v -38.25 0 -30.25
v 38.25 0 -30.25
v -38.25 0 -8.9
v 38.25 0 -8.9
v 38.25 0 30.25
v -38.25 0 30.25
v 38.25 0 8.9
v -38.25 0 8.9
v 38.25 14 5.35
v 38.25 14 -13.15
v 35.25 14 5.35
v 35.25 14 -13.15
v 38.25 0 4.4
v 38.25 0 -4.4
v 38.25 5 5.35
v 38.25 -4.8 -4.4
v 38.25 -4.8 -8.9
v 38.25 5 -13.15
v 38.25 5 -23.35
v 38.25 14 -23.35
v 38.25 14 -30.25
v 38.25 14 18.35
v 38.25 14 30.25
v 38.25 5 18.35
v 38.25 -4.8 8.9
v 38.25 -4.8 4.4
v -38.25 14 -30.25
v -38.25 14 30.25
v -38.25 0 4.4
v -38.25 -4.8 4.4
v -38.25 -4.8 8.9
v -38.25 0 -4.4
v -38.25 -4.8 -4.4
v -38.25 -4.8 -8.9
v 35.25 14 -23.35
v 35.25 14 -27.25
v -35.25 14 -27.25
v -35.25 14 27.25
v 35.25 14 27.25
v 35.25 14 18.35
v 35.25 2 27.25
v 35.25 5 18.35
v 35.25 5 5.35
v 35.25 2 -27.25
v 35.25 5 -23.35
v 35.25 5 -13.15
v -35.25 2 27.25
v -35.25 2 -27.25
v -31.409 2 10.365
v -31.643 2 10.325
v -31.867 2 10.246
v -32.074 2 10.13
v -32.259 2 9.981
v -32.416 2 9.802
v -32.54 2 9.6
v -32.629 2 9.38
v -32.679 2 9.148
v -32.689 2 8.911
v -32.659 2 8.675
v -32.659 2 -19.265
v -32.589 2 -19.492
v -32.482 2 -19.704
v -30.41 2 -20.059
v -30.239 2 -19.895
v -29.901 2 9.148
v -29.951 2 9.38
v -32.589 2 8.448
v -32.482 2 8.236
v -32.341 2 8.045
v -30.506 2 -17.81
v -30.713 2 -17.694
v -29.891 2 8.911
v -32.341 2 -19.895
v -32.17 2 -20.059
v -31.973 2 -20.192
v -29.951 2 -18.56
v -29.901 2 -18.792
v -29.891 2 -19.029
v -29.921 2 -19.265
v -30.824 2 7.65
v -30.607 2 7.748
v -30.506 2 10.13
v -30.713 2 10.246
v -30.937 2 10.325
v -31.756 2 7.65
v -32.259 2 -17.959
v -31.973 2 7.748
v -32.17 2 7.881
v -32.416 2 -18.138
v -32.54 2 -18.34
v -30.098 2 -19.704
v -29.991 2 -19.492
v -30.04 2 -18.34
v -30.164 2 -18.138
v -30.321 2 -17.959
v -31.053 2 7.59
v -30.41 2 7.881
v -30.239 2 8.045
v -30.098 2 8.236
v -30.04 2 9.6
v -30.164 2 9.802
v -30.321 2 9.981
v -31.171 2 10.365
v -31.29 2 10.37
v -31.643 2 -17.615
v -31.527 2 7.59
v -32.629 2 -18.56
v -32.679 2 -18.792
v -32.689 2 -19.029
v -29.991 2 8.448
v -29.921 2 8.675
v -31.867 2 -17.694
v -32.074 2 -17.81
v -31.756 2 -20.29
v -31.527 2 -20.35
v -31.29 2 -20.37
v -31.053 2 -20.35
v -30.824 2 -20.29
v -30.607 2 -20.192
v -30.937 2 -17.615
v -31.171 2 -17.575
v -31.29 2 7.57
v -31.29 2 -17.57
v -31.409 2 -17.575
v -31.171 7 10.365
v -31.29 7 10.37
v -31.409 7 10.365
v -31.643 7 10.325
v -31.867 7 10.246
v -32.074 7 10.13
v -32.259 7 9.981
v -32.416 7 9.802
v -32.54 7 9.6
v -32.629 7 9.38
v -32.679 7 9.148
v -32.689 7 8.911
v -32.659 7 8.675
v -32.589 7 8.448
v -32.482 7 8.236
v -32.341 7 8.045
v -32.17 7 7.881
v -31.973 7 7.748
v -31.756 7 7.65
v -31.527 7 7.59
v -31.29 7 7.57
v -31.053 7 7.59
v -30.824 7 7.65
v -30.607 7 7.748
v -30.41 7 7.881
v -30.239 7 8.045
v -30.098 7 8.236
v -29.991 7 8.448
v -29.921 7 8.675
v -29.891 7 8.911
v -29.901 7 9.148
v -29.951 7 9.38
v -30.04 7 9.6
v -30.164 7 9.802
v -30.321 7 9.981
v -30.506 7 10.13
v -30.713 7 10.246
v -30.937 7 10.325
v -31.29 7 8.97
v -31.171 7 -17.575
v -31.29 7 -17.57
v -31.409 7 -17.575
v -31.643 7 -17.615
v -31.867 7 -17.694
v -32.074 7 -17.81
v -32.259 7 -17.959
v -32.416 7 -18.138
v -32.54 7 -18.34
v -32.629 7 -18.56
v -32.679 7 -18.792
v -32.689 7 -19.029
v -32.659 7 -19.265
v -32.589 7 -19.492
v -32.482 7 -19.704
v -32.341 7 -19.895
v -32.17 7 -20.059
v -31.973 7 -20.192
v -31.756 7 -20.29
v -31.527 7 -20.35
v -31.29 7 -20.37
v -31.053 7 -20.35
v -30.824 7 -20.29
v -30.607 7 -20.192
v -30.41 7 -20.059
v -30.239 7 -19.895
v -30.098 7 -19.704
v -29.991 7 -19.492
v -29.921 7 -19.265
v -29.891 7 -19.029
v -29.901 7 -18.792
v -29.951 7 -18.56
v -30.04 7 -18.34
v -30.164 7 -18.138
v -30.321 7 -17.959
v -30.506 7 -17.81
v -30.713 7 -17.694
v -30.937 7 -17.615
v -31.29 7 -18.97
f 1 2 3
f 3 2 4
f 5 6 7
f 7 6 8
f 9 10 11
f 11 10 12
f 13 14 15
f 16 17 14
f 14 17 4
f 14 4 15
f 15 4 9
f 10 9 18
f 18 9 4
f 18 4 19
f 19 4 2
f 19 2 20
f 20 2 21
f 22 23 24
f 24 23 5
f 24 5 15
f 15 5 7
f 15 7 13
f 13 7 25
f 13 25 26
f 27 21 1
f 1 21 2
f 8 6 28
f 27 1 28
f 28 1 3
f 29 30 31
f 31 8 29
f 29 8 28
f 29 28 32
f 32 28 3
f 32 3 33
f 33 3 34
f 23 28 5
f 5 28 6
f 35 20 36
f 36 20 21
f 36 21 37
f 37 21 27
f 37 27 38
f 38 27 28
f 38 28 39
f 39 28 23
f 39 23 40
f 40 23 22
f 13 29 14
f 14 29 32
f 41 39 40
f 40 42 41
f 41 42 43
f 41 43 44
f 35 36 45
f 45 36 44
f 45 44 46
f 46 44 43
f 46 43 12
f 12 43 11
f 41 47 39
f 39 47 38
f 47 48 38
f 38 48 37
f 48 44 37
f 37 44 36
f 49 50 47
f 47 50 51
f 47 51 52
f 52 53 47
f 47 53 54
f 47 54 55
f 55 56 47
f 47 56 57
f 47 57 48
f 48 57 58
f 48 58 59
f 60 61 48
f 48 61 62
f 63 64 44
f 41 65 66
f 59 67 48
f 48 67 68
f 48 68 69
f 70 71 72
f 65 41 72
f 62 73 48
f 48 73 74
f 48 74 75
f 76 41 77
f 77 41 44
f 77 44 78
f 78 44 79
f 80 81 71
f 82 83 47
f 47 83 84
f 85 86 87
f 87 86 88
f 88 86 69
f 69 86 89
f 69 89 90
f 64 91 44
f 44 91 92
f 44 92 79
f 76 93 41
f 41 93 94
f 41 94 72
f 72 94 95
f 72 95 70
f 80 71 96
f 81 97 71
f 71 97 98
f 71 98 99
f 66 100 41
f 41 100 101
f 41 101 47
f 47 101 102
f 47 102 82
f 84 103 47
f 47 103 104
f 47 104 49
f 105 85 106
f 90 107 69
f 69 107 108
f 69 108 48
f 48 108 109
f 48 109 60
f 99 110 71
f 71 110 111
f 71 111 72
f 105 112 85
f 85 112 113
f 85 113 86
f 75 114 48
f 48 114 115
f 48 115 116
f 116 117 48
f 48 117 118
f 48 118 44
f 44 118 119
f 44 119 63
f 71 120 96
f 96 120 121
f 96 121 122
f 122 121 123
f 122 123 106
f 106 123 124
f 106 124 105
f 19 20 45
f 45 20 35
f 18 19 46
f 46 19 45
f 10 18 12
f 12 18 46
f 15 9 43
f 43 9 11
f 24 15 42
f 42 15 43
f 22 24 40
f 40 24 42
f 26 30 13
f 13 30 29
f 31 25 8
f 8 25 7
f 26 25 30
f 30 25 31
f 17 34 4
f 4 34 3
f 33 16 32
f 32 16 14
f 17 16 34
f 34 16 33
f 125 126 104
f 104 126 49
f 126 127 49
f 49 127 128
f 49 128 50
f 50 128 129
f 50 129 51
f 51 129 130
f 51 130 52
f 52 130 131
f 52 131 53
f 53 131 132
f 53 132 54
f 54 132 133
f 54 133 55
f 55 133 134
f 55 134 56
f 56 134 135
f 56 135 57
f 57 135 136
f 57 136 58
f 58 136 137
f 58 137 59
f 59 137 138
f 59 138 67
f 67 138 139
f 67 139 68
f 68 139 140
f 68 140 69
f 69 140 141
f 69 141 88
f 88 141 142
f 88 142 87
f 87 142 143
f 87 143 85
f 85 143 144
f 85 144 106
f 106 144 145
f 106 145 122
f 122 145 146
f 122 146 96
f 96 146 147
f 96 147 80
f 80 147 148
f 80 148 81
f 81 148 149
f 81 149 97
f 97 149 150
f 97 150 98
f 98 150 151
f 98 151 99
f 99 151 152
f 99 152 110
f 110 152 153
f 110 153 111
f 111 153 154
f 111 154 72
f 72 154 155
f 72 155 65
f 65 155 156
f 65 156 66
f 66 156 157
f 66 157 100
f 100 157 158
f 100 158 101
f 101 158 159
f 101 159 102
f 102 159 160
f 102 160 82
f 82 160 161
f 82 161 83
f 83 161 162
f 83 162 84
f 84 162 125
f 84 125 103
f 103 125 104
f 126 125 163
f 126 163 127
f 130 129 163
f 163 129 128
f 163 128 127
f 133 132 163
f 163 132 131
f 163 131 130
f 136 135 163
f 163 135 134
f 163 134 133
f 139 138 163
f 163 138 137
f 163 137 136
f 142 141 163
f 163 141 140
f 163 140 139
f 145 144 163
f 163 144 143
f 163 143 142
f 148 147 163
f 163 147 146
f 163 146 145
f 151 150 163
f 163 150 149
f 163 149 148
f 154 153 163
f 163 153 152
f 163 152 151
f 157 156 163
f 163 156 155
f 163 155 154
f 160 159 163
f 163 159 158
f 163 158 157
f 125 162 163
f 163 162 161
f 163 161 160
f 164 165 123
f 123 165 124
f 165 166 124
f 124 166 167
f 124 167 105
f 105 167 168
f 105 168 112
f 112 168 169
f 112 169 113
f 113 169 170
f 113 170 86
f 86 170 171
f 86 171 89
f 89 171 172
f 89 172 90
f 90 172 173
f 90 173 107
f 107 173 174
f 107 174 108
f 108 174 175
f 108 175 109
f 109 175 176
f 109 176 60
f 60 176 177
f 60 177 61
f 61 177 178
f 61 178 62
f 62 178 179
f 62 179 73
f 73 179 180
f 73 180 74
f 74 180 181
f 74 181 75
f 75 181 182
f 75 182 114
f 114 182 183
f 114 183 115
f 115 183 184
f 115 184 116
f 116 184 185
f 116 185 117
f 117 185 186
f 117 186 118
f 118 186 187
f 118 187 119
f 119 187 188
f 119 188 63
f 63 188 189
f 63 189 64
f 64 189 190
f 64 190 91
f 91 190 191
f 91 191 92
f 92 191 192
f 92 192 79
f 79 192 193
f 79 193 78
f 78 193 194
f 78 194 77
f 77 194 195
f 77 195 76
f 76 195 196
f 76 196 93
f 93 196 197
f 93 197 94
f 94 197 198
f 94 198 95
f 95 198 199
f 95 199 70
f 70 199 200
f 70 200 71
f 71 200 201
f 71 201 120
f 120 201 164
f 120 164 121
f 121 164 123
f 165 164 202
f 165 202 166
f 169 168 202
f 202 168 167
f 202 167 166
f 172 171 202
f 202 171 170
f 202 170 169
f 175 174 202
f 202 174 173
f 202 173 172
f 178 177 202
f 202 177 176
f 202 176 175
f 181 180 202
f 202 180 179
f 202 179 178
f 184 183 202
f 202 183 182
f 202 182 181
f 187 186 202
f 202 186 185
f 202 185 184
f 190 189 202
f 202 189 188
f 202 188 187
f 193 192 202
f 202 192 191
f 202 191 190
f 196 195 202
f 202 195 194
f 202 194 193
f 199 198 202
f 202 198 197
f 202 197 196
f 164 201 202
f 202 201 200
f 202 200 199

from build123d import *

# Parameters (mm, degrees)
SKETCH1_W           = 76.5
SKETCH1_H           = 60.5
BOSS_EXTRUDE1_DEPTH = 14
SKETCH2_W           = 70.5
SKETCH2_H           = 54.5
CUT_EXTRUDE1_DEPTH  = 12
CUT_EXTRUDE2_REACH  = 85.446
SKETCH4_W           = 13
SKETCH4_H           = 9
SKETCH4_W_2         = 10.2
SKETCH5_W           = 76.5
SKETCH5_H           = 4.5
BOSS_EXTRUDE3_DEPTH = 4.8
SKETCH6_R           = 1.4
BOSS_EXTRUDE4_DEPTH = 5


with BuildPart() as part:
    # Sketch1 → Boss-Extrude1 (new body)
    with BuildSketch(Plane(origin=(0, 0, 0), x_dir=(1, 0, 0), z_dir=(0, 1, 0))):
        Rectangle(SKETCH1_W, SKETCH1_H)
    extrude(amount=BOSS_EXTRUDE1_DEPTH)

    # Sketch2 → Cut-Extrude1 (cut)
    with BuildSketch(Plane(origin=(0, 14, 0), x_dir=(1, 0, 0), z_dir=(0, 1, 0))):
        Rectangle(SKETCH2_W, SKETCH2_H)
    extrude(amount=-CUT_EXTRUDE1_DEPTH, mode=Mode.SUBTRACT)

    # Sketch4 → Cut-Extrude2 (cut, up to next)
    with BuildSketch(Plane(origin=(38.25, 0, 0), x_dir=(0, 0, -1), z_dir=(1, 0, 0)), mode=Mode.PRIVATE) as cut_extrude2_sk1:
        with Locations((-11.85, 9.5)):
            Rectangle(SKETCH4_W, SKETCH4_H)
    cut_extrude2_tool1 = extrude(cut_extrude2_sk1.sketch, amount=-CUT_EXTRUDE2_REACH, mode=Mode.PRIVATE) & part.part
    # Sketch4 → Cut-Extrude2 (cut, up to next)
    with BuildSketch(Plane(origin=(38.25, 0, 0), x_dir=(0, 0, -1), z_dir=(1, 0, 0)), mode=Mode.PRIVATE) as cut_extrude2_sk2:
        with Locations((18.25, 9.5)):
            Rectangle(SKETCH4_W_2, SKETCH4_H)
    cut_extrude2_tool2 = extrude(cut_extrude2_sk2.sketch, amount=-CUT_EXTRUDE2_REACH, mode=Mode.PRIVATE) & part.part
    add(cut_extrude2_tool1.solids().sort_by_distance((38.25, 9.5, 11.85))[0], mode=Mode.SUBTRACT)
    add(cut_extrude2_tool2.solids().sort_by_distance((38.25, 9.5, -18.25))[0], mode=Mode.SUBTRACT)

    # Sketch5 → Boss-Extrude3 (add)
    with BuildSketch(Plane.XZ):
        with Locations((0, 6.65)):
            Rectangle(SKETCH5_W, SKETCH5_H)
    boss_extrude3 = extrude(amount=BOSS_EXTRUDE3_DEPTH)

    # Mirror1: Boss-Extrude3 across plane
    add(boss_extrude3.mirror(Plane.XY))

    # Sketch6 → Boss-Extrude4 (add)
    with BuildSketch(Plane(origin=(0, 2, 0), x_dir=(1, 0, 0), z_dir=(0, 1, 0))):
        with Locations(Location((-31.29, -8.97, 0), (0, 0, 270))):
            Circle(SKETCH6_R)
        with Locations(Location((-31.29, 18.97, 0), (0, 0, 270))):
            Circle(SKETCH6_R)
    extrude(amount=BOSS_EXTRUDE4_DEPTH)


solid = part.part
